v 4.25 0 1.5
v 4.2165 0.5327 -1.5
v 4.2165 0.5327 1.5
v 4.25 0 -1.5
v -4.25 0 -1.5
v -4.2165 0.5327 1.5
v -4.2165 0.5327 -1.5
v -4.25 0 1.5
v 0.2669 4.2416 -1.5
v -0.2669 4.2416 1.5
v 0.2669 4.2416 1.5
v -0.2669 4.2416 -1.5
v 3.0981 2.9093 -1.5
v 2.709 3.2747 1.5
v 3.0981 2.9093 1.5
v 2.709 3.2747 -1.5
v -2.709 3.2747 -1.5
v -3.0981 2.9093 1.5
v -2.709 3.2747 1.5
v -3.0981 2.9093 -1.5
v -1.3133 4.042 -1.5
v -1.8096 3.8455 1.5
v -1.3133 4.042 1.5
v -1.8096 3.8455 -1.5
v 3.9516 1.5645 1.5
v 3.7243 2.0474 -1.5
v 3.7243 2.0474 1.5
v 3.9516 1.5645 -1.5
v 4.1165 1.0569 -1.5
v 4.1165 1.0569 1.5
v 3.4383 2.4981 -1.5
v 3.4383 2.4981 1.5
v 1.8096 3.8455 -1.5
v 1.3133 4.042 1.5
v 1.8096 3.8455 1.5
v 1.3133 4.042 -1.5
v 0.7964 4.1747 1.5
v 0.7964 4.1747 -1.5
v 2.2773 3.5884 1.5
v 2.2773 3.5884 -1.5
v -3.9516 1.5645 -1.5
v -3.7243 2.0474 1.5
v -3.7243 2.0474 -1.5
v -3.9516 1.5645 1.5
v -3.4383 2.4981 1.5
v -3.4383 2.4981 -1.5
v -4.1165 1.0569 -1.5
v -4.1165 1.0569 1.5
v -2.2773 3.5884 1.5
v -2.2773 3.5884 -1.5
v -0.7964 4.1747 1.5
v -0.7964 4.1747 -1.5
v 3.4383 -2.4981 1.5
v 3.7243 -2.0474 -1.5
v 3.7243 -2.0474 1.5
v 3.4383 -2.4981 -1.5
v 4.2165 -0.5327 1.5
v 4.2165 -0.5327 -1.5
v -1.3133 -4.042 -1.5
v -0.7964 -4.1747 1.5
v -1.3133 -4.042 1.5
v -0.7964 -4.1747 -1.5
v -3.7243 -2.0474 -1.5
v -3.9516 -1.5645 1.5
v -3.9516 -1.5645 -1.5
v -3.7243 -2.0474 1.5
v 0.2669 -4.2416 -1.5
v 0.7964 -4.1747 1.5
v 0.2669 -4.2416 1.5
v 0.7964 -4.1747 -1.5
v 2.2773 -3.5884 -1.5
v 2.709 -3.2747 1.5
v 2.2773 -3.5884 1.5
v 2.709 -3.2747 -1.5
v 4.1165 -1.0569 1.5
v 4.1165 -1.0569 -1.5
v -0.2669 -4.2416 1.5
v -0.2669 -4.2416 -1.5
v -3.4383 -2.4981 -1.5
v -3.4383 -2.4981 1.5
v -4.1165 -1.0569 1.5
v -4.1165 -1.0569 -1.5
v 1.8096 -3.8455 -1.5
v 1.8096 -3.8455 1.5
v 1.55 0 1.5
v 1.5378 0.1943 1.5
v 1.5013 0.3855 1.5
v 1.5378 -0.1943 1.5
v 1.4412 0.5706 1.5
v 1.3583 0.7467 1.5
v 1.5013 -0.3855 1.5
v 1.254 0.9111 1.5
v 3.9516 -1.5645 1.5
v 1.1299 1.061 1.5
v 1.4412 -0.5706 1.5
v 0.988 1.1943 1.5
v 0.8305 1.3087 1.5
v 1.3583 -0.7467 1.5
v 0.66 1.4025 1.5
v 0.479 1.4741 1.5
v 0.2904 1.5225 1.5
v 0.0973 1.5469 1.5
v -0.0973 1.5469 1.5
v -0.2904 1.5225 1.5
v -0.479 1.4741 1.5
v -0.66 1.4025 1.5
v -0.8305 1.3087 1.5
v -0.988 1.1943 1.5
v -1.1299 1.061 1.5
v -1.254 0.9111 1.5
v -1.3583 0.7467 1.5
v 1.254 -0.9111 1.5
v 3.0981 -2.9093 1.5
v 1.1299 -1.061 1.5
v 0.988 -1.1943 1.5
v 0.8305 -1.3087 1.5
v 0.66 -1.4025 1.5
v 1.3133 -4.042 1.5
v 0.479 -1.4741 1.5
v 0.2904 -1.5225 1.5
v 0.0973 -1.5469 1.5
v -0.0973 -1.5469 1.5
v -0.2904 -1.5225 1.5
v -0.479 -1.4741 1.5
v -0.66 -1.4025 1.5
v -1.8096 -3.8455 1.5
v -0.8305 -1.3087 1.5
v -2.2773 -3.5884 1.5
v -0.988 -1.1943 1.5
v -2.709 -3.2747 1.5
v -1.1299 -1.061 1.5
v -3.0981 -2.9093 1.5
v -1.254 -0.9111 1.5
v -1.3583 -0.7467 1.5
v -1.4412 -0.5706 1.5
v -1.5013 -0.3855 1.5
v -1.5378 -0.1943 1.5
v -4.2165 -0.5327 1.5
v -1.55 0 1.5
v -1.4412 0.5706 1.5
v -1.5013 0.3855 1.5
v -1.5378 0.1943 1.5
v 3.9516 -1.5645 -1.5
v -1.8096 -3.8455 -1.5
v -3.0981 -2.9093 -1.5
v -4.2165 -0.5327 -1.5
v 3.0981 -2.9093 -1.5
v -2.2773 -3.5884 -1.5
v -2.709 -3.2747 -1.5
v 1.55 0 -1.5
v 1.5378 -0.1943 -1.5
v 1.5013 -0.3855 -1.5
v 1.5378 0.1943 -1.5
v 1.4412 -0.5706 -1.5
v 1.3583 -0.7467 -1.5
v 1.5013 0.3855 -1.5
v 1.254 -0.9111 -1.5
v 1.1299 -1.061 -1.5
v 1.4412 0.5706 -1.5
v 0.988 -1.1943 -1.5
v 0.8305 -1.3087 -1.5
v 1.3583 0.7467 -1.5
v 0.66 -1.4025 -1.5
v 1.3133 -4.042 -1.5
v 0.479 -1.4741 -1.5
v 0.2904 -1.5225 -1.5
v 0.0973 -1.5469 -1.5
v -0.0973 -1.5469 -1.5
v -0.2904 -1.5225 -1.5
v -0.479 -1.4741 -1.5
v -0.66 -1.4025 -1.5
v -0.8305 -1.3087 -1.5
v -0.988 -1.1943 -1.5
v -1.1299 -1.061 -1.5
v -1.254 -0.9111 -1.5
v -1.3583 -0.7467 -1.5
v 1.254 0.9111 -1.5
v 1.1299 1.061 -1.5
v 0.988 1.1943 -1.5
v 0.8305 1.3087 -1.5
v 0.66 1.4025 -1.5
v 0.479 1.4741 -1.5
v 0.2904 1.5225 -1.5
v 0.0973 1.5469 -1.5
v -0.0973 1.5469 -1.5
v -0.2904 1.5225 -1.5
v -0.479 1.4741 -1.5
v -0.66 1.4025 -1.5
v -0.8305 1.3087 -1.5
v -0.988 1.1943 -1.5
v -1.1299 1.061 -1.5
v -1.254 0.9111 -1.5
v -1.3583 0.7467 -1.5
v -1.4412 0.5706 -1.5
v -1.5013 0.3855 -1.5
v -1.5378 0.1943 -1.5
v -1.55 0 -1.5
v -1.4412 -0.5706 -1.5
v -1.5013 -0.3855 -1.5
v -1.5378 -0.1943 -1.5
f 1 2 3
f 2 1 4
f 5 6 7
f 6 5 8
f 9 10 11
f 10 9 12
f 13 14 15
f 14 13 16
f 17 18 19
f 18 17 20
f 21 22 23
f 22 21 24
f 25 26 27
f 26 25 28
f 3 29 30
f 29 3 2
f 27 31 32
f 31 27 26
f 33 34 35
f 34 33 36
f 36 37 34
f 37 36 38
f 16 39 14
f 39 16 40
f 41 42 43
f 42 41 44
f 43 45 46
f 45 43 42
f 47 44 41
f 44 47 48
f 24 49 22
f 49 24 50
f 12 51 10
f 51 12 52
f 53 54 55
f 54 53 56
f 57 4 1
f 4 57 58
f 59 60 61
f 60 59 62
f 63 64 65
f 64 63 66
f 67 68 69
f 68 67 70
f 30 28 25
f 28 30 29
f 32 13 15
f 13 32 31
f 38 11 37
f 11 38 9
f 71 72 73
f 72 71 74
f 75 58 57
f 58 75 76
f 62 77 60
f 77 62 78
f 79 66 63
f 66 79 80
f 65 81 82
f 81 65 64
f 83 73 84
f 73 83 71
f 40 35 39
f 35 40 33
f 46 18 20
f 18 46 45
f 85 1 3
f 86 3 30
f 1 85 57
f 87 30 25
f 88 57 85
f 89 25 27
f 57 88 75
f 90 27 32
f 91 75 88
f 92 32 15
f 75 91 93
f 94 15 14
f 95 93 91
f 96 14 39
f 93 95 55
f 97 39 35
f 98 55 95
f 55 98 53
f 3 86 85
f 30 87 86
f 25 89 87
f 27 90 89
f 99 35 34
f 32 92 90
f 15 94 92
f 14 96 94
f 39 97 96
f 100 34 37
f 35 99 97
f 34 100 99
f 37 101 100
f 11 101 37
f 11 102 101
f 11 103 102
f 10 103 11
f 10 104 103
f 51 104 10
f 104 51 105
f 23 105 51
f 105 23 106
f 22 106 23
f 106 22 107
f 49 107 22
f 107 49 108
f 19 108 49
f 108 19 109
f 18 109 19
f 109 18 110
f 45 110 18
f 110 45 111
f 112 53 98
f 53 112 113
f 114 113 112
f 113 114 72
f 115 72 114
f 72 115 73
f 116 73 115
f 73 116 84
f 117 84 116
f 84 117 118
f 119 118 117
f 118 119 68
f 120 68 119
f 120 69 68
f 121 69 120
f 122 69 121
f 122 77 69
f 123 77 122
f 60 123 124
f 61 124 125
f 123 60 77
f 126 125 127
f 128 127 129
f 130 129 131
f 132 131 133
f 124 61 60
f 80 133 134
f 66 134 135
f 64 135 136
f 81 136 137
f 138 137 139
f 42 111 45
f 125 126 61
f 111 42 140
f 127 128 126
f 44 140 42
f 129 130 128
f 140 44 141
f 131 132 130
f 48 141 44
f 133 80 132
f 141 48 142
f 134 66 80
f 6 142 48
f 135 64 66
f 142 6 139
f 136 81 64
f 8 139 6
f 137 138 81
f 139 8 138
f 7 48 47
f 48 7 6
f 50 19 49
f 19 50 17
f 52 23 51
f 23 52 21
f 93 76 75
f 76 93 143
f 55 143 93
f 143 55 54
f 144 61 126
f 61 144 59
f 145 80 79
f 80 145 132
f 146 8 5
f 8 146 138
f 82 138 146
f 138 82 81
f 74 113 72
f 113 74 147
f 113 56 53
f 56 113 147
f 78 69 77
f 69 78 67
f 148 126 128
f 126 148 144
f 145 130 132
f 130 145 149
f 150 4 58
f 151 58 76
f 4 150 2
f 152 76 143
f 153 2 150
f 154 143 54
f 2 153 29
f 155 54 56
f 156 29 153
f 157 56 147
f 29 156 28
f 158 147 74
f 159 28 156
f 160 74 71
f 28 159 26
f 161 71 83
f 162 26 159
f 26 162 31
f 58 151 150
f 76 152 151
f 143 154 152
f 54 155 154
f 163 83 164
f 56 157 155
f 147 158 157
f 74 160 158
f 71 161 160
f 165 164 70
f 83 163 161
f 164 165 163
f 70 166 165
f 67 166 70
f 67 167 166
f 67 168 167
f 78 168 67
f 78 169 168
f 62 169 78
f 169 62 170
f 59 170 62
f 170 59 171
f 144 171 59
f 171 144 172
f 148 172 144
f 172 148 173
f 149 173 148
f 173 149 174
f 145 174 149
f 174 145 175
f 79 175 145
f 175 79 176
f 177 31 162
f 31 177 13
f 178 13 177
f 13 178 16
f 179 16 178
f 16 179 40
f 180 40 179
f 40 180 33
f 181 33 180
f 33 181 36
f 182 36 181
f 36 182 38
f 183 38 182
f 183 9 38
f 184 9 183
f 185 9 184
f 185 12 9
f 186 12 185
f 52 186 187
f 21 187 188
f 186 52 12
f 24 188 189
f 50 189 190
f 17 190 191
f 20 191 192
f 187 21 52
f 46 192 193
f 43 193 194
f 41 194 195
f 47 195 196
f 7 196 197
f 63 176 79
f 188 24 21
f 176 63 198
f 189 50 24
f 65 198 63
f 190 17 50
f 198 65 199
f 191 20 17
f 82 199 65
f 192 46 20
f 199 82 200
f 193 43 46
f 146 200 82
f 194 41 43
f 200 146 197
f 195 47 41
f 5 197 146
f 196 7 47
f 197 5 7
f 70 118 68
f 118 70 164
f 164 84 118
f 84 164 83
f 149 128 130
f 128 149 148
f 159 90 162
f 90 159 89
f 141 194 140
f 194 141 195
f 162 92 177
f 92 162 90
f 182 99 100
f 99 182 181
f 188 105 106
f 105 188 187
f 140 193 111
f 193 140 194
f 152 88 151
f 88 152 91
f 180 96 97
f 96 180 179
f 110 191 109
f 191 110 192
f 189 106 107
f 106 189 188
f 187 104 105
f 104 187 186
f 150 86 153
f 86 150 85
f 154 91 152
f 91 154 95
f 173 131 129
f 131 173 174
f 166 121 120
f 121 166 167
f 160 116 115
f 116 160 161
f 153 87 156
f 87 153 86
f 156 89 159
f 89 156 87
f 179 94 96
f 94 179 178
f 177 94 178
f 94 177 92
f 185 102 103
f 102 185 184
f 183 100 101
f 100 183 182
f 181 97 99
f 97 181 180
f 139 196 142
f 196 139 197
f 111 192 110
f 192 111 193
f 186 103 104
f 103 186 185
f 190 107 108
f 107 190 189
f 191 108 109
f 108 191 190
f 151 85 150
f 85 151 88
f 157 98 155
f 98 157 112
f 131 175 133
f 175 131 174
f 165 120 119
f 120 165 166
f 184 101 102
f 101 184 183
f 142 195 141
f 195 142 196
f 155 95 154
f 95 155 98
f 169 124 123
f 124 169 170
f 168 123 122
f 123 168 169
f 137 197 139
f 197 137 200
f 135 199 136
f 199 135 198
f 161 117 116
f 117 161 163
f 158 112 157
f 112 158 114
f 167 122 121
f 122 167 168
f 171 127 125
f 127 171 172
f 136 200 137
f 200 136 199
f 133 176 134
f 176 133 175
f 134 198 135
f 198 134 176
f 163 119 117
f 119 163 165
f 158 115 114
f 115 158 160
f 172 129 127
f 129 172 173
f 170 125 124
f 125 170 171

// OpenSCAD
$fn = 50;


difference() {
	union() {
		translate(v = [0, 0, -1.5000000000]) {
			cylinder(h = 3, r = 4.2500000000);
		}
	}
	union() {
		translate(v = [0, 0, -100.0000000000]) {
			cylinder(h = 200, r = 1.5500000000);
		}
	}
}
